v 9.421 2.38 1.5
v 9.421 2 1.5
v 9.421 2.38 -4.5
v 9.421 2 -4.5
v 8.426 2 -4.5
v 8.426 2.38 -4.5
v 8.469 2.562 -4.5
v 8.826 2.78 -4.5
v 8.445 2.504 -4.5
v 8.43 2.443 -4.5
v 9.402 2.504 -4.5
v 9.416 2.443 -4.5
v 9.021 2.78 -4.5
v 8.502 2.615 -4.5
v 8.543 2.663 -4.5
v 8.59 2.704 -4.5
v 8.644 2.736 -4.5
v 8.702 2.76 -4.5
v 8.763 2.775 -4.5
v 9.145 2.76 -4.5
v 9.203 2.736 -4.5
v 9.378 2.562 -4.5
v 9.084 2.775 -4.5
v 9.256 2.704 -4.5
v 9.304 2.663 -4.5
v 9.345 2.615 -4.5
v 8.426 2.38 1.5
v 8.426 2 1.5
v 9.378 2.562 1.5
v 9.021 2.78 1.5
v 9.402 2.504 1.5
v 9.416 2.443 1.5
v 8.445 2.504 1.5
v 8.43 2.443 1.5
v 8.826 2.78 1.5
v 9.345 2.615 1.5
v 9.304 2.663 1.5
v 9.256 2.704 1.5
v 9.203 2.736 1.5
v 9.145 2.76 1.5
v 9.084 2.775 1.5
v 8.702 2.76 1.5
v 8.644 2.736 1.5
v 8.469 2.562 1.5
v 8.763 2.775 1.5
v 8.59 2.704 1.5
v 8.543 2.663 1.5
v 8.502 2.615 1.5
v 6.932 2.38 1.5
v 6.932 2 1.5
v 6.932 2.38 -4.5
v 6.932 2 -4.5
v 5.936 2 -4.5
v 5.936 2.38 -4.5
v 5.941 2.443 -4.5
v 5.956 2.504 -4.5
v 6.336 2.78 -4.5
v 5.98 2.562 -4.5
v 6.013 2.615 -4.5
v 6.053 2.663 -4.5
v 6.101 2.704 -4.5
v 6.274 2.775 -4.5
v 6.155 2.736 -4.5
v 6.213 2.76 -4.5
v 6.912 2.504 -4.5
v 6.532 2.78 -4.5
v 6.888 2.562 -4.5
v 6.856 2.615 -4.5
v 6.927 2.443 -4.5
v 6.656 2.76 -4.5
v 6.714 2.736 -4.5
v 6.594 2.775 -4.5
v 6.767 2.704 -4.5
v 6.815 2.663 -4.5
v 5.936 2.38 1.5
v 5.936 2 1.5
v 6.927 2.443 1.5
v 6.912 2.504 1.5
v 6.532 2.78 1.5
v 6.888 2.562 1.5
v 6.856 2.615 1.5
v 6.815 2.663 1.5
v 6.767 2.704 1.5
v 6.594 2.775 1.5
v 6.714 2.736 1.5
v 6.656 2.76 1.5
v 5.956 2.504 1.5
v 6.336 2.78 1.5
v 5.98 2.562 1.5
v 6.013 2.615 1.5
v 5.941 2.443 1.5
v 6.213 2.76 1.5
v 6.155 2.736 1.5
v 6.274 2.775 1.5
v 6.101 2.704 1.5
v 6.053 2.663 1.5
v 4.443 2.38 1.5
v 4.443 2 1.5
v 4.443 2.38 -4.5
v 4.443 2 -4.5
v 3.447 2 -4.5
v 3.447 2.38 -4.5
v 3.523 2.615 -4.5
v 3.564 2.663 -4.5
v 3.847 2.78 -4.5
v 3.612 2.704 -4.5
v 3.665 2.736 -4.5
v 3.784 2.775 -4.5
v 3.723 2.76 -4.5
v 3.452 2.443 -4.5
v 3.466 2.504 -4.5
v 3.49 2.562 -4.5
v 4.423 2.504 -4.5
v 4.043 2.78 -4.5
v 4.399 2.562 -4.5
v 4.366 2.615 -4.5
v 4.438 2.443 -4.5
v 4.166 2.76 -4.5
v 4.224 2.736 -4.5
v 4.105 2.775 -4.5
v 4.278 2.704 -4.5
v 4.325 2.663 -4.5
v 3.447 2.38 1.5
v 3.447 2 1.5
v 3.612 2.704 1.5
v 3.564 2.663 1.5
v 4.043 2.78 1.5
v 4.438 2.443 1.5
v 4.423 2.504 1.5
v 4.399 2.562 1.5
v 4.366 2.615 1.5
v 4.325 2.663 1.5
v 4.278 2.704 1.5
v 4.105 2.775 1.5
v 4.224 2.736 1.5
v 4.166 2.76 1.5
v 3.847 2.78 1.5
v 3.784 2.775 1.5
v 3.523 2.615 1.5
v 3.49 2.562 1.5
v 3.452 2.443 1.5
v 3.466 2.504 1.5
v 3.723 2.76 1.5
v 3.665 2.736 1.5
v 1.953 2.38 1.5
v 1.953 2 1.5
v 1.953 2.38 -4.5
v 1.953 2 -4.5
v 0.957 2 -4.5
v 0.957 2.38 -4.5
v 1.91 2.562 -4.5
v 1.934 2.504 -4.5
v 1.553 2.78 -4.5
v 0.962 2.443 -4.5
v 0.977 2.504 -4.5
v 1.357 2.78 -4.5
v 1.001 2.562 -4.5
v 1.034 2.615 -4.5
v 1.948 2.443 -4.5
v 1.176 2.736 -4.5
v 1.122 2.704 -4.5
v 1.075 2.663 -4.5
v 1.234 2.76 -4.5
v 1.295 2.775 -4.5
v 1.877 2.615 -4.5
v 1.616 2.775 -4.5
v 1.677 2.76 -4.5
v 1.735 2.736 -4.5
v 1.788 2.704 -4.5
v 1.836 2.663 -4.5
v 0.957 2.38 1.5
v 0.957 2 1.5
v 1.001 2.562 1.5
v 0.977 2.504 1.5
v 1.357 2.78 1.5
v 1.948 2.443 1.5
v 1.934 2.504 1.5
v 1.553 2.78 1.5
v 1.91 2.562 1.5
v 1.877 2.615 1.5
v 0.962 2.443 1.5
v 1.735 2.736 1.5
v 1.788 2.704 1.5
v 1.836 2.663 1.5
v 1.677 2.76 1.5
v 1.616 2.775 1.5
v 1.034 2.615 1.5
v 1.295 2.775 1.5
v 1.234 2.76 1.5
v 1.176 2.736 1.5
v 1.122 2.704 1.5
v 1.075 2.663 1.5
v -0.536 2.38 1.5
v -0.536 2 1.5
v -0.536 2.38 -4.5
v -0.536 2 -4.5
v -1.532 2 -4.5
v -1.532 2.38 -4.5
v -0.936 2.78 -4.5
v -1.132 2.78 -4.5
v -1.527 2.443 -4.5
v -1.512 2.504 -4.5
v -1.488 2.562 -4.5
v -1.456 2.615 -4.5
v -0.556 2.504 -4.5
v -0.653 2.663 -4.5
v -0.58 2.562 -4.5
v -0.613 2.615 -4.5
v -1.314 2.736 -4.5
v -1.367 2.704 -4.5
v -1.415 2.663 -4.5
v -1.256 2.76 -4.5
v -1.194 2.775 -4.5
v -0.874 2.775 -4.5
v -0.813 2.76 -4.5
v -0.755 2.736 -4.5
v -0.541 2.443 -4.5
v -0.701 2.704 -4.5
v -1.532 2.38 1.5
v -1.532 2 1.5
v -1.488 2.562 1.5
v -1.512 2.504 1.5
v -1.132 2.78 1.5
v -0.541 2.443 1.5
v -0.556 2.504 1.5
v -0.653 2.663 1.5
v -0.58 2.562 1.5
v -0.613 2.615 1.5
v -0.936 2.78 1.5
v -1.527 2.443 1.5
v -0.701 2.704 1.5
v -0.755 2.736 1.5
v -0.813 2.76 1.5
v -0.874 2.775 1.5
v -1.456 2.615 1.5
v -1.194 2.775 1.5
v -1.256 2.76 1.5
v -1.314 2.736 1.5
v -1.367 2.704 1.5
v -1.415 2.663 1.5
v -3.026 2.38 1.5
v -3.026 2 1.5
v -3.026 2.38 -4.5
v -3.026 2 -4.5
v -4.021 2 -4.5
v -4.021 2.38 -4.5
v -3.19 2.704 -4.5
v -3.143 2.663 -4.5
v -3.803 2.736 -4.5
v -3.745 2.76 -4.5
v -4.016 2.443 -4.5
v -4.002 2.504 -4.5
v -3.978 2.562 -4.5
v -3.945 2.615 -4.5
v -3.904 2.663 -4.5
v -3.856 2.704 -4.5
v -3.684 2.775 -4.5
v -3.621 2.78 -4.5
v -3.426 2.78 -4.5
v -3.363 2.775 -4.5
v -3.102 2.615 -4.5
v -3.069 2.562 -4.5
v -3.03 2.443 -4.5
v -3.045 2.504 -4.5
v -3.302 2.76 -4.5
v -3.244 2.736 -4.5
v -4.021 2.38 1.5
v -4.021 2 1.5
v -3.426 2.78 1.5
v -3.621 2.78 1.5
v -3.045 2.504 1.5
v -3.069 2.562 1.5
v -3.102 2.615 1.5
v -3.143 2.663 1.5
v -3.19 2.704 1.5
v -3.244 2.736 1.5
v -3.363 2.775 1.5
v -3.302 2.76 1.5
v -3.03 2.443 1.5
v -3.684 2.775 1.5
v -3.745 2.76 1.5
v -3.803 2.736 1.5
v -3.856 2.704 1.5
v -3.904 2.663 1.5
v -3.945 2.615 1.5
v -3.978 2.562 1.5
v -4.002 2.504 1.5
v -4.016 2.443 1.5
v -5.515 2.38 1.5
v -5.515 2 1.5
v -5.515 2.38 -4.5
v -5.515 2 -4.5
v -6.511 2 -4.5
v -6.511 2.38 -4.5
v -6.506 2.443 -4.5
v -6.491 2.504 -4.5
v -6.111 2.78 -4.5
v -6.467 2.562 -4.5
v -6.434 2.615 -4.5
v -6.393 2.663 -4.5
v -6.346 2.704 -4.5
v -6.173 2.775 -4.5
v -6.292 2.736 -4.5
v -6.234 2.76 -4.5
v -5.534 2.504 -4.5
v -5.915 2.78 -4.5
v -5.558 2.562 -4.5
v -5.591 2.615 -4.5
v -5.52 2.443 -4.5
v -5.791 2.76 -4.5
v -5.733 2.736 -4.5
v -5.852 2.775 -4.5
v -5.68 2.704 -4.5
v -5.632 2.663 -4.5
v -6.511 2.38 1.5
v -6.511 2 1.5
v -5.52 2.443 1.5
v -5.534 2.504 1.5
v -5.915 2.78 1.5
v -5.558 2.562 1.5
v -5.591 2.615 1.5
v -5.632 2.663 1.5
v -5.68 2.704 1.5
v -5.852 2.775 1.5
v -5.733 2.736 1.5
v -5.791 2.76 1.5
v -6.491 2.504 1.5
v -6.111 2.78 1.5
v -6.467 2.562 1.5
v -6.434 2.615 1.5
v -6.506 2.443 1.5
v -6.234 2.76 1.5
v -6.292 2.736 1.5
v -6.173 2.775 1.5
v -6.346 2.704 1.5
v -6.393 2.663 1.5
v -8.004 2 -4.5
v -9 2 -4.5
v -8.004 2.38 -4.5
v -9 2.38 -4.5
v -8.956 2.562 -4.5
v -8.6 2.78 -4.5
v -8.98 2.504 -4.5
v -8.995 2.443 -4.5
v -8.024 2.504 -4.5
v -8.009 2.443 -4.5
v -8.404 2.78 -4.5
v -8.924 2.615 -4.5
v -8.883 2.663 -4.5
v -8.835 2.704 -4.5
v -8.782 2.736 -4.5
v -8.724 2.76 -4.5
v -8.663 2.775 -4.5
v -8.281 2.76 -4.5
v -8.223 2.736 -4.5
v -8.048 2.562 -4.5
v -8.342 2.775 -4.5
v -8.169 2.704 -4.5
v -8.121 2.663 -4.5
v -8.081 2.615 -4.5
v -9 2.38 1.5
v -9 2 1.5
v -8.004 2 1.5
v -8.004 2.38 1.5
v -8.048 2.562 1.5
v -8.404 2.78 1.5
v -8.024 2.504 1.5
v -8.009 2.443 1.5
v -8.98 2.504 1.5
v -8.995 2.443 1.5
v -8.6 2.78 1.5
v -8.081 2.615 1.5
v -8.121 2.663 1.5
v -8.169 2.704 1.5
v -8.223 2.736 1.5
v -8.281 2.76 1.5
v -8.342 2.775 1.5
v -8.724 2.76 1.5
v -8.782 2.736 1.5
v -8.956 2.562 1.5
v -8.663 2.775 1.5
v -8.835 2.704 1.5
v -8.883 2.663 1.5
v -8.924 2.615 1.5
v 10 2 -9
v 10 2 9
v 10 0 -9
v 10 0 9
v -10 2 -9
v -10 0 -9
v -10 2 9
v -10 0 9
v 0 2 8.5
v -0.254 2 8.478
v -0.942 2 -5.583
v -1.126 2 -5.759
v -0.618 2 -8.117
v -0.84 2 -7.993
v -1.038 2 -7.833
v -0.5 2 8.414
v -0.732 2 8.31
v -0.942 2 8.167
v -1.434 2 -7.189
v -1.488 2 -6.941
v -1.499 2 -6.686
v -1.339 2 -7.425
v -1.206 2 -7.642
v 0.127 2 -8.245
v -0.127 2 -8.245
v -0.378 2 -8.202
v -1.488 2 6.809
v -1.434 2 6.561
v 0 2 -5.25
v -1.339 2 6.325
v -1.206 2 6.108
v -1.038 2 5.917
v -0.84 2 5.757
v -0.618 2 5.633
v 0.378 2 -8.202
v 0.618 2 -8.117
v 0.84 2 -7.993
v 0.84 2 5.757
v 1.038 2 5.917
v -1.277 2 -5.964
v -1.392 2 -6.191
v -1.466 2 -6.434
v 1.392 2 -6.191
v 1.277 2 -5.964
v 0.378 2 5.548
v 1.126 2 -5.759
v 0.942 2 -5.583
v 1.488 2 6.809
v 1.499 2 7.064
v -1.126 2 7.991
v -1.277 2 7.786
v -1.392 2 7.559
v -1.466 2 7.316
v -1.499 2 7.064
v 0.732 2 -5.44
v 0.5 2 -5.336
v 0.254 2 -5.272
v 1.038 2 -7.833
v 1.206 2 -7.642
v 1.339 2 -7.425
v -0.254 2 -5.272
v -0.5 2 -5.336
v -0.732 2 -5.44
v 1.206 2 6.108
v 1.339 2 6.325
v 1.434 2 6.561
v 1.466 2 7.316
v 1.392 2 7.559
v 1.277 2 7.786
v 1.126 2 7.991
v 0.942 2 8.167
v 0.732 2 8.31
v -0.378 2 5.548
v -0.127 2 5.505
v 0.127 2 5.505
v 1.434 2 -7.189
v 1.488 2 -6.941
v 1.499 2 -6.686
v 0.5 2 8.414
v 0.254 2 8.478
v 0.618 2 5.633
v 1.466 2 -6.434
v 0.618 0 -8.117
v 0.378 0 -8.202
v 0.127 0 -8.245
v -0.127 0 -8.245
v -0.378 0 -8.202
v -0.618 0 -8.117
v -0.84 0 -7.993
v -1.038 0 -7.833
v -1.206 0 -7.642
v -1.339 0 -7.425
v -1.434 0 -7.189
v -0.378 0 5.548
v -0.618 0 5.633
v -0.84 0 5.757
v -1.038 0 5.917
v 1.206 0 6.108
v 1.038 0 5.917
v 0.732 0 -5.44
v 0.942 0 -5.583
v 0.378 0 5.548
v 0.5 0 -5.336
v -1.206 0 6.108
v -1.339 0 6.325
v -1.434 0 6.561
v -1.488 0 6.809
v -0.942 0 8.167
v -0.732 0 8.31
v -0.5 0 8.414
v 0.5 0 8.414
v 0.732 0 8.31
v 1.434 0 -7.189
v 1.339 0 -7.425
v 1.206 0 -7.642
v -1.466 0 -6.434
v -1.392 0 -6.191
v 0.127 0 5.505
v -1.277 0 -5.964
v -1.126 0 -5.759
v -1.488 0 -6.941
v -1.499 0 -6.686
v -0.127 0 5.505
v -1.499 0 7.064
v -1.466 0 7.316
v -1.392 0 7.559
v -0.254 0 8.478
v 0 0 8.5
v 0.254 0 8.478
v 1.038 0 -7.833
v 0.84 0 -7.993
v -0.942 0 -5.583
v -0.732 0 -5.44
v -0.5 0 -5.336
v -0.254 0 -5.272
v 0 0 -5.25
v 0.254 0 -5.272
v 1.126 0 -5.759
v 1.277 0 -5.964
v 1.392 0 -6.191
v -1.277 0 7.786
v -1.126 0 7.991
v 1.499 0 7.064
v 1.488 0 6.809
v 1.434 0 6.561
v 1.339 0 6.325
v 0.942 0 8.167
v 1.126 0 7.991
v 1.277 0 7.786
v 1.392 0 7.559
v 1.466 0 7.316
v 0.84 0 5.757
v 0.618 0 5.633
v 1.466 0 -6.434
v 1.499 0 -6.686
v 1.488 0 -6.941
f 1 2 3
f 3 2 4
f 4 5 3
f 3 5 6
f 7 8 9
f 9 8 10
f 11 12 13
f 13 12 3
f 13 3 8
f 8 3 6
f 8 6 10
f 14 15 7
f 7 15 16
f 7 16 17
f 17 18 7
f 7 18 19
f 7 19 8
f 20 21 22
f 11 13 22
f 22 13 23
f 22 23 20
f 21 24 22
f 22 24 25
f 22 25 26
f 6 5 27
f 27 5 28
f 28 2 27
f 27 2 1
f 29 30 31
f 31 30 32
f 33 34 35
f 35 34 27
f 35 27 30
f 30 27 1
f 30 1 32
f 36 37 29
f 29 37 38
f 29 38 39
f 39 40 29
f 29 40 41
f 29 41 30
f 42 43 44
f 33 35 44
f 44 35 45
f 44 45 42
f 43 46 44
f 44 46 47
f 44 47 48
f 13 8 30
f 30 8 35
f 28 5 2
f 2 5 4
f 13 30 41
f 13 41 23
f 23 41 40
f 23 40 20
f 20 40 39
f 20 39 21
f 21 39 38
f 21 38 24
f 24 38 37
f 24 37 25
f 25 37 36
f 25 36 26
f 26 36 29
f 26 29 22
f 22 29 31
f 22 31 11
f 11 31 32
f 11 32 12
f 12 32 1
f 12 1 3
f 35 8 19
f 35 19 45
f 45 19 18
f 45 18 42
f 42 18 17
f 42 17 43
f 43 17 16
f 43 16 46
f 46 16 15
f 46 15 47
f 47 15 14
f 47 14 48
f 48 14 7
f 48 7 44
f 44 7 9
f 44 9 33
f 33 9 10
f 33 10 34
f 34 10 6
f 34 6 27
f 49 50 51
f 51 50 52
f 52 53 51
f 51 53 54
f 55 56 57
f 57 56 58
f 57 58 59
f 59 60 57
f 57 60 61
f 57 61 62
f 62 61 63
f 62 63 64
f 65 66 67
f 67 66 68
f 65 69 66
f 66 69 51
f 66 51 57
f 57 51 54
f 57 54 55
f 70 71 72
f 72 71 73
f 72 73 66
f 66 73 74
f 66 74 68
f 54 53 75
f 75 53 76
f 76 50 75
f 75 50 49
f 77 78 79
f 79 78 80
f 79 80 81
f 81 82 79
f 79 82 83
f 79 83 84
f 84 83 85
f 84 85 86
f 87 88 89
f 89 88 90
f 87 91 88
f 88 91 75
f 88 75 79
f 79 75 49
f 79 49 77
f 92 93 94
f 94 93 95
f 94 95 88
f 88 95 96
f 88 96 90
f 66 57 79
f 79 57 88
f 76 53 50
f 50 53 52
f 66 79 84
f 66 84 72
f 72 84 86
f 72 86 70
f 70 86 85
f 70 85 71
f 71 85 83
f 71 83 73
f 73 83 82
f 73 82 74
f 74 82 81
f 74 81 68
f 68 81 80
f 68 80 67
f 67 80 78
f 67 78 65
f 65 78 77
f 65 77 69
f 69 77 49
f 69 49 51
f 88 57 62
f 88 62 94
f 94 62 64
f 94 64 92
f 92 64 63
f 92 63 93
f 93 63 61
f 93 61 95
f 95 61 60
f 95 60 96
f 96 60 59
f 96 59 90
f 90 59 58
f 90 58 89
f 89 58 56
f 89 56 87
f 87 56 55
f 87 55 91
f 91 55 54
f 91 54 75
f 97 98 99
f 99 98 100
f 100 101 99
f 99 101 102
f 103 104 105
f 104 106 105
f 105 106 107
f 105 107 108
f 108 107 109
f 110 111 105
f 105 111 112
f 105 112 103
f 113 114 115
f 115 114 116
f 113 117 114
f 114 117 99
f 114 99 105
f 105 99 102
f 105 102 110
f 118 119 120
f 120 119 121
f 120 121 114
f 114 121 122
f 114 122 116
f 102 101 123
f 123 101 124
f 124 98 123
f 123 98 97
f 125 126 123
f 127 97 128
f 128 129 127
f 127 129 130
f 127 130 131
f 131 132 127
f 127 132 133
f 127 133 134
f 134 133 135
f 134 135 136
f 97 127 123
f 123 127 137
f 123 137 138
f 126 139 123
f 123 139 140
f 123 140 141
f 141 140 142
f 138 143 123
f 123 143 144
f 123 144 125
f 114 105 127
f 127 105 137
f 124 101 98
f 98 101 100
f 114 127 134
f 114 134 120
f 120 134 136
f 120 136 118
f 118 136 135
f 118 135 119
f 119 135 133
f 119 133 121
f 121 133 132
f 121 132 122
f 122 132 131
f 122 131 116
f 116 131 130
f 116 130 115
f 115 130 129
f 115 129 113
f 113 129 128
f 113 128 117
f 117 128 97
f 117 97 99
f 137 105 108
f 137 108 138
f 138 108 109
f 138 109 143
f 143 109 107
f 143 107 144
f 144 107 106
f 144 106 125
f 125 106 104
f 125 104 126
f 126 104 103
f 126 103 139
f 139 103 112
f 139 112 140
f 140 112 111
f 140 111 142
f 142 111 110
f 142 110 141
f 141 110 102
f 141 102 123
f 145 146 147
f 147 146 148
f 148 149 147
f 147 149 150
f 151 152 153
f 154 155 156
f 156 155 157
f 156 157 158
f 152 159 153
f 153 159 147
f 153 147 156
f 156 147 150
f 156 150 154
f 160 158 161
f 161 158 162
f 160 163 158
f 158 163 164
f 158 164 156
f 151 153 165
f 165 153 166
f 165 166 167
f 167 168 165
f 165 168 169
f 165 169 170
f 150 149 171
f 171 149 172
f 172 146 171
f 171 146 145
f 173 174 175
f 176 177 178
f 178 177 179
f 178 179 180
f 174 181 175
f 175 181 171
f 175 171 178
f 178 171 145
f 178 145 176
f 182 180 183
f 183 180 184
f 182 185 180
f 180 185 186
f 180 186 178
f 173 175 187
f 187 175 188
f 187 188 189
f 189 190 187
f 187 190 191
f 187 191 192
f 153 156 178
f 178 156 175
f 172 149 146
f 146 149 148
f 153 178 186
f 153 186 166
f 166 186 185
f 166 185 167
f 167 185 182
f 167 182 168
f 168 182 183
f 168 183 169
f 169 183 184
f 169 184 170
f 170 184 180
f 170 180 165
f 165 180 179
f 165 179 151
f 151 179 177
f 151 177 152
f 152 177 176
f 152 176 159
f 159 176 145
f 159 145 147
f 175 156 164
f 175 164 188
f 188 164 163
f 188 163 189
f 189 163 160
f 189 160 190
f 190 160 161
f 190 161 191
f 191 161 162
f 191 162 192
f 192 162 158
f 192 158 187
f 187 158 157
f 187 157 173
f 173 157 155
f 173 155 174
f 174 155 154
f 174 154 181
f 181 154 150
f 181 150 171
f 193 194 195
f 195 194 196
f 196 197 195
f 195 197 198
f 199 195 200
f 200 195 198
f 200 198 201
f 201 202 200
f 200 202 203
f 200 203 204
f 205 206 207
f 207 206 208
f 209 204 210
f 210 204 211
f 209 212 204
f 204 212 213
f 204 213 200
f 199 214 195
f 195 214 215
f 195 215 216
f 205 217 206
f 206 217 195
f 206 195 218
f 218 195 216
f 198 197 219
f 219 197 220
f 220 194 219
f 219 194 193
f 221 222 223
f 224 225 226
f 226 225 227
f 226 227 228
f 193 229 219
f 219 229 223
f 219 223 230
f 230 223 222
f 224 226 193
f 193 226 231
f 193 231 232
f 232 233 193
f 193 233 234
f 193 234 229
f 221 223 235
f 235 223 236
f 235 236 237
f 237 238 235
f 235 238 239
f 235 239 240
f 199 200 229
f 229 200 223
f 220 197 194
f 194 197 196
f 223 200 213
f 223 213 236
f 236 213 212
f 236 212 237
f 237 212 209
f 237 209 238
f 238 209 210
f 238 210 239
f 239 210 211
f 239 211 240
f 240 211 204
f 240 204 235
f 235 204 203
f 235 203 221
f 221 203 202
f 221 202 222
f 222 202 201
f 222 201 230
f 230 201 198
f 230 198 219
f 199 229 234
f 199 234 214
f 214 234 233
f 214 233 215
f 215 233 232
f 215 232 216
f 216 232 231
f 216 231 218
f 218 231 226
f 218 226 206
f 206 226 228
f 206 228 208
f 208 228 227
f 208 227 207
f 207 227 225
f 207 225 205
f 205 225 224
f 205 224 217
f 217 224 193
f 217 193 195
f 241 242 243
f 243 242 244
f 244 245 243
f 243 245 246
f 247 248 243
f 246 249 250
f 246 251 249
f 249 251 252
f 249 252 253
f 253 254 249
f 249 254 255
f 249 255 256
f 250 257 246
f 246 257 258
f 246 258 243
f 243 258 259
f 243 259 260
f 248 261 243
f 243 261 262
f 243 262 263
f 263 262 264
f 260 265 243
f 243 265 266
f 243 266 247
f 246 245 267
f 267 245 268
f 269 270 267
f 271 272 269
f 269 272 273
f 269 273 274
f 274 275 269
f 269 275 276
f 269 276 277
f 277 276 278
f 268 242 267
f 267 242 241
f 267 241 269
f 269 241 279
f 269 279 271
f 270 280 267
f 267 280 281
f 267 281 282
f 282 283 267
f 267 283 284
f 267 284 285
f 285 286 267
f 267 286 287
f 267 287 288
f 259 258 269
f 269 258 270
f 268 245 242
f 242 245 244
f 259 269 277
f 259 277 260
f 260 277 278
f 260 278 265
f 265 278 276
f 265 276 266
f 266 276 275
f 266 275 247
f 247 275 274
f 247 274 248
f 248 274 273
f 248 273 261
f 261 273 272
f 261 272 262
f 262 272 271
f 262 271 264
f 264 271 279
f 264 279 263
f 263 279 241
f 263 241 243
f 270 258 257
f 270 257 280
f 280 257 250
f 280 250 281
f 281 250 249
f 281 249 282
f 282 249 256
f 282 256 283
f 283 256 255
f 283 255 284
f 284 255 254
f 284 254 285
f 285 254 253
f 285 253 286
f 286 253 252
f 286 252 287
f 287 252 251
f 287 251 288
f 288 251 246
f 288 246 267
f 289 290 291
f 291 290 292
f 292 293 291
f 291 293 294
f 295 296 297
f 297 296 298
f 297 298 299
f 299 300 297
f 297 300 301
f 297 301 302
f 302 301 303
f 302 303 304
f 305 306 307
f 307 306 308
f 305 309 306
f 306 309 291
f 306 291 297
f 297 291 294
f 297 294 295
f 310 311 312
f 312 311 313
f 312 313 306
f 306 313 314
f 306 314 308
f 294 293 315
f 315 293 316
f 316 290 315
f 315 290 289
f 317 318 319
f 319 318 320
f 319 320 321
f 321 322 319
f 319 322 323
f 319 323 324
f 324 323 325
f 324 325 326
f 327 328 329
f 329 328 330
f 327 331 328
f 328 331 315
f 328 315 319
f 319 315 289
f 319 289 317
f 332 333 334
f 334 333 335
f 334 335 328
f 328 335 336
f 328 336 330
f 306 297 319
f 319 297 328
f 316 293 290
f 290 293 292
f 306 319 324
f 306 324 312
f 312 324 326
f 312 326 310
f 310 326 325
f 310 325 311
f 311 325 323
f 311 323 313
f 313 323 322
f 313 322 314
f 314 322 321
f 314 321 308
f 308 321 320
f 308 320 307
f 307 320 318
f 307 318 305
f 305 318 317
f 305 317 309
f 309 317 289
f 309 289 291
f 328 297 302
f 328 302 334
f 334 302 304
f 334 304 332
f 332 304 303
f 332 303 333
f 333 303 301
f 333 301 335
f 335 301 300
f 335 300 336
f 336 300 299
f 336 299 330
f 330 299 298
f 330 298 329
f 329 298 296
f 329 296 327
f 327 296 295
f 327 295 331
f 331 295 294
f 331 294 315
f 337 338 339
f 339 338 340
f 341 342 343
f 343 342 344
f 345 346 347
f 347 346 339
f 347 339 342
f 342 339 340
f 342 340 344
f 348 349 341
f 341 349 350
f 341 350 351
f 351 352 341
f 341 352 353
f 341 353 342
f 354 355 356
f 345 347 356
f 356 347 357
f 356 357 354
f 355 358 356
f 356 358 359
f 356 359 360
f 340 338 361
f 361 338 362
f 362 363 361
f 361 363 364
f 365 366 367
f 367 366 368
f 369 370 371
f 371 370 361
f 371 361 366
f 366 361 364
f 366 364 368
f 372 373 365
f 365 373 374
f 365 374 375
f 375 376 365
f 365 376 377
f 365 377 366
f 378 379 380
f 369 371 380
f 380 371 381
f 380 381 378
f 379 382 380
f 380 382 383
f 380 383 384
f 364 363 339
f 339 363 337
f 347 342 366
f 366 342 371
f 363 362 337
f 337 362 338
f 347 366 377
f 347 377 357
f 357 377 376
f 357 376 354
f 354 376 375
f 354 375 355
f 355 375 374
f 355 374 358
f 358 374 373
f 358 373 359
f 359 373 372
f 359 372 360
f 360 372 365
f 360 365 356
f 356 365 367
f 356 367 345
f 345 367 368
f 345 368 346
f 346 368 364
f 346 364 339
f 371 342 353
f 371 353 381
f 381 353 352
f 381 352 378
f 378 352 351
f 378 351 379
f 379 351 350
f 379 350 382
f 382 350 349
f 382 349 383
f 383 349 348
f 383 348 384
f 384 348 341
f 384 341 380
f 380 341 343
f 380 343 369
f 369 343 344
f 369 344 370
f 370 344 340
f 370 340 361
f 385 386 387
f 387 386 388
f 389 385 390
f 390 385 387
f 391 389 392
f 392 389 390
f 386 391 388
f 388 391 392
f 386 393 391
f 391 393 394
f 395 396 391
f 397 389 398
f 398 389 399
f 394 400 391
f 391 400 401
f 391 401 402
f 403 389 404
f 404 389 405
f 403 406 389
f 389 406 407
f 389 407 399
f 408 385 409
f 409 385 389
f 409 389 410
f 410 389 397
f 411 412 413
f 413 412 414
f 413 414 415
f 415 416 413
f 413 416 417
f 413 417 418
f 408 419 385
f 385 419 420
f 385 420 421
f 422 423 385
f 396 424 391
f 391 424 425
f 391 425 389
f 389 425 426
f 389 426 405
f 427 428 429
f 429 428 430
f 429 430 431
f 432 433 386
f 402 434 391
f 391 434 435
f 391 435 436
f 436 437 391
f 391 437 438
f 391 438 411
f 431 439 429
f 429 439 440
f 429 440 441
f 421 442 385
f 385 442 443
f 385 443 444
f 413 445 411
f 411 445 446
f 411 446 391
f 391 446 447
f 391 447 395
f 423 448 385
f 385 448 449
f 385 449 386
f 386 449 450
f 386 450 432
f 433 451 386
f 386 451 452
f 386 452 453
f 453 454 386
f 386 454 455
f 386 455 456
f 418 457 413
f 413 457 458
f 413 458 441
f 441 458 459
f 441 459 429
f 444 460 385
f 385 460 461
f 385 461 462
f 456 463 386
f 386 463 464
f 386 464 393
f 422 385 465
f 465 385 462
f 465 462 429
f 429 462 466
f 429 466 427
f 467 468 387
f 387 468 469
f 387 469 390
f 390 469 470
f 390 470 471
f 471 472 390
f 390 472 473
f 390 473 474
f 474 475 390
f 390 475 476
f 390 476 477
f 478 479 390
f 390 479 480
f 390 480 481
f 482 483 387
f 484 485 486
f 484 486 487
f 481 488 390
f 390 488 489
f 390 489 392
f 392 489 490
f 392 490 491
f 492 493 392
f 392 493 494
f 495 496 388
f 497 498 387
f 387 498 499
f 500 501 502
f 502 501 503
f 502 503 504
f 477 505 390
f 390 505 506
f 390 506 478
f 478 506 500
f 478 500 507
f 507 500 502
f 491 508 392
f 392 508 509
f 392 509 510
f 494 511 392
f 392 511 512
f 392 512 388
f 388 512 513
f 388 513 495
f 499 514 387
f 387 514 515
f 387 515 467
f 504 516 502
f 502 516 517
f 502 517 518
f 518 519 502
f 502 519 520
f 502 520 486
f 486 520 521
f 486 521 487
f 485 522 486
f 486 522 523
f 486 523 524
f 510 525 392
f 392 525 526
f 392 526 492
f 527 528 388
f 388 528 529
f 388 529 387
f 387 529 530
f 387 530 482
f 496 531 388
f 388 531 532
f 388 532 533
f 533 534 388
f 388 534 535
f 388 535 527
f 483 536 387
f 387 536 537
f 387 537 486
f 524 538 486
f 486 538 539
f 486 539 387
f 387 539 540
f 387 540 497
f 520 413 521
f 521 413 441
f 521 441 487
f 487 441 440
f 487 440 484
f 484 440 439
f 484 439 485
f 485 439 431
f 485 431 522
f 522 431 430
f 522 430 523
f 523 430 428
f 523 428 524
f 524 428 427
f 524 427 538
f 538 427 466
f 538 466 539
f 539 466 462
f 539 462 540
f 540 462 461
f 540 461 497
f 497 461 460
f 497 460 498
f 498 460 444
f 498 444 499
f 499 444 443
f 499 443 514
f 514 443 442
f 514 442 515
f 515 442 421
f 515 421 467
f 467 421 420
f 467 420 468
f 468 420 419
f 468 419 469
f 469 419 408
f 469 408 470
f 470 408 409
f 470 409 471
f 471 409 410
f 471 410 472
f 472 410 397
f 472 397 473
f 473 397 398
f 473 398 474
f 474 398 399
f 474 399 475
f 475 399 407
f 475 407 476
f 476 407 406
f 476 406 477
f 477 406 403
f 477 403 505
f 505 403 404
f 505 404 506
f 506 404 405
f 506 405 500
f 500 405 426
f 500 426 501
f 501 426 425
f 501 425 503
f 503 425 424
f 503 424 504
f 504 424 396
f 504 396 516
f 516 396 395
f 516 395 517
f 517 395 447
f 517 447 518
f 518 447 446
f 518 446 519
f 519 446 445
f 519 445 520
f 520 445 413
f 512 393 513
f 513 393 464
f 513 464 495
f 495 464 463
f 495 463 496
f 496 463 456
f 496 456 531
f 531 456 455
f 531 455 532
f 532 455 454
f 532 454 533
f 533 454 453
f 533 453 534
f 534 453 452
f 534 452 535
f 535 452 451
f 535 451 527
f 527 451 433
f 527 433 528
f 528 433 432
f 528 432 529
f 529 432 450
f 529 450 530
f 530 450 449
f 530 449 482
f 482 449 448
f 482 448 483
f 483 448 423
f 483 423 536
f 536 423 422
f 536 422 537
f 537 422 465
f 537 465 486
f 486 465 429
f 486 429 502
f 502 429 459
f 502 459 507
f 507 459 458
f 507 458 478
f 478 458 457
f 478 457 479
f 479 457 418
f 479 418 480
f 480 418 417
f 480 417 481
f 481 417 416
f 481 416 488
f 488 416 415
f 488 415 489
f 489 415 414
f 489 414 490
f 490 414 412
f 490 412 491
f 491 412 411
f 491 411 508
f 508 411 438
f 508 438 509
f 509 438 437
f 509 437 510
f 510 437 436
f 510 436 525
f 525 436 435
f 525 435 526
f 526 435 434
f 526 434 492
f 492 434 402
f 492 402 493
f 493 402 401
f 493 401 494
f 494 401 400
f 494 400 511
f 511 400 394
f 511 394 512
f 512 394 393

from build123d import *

# Parameters (mm, degrees)
SKETCH_1_W          = 20
SKETCH_1_H          = 18
EXTRUDE_1_DEPTH     = 2
SKETCH_6_W          = 0.995744681
SKETCH_6_H          = 6
EXTRUDE_4_DEPTH     = 0.78
EXTRUDE_4_2_DEPTH   = 0.78
SKETCH_6_W_2        = 0.99574468
EXTRUDE_4_3_DEPTH   = 0.78
EXTRUDE_4_4_DEPTH   = 0.78
EXTRUDE_4_5_DEPTH   = 0.78
EXTRUDE_4_6_DEPTH   = 0.78
EXTRUDE_4_7_DEPTH   = 0.78
EXTRUDE_4_8_DEPTH   = 0.78
FILLET_11_R         = 0.4
FILLET_12_R         = 0.4
FILLET_13_R         = 0.4
FILLET_14_R         = 0.4
FILLET_15_R         = 0.4
FILLET_16_R         = 0.4
FILLET_17_R         = 0.4
FILLET_18_R         = 0.4
FILLET_19_R         = 0.4
SKETCH_9_R          = 1.5
CUT_EXTRUDE_2_DEPTH = 10


with BuildPart() as part:
    # 草图1 → 凸台-拉伸1 (new body)
    with BuildSketch(Plane(origin=(0, 0, 0), x_dir=(1, 0, 0), z_dir=(0, 1, 0))):
        Rectangle(SKETCH_1_W, SKETCH_1_H)
    extrude(amount=EXTRUDE_1_DEPTH)

    # 草图9 → 切除-拉伸2 (cut)
    with BuildSketch(Plane(origin=(0, 2, 0), x_dir=(1, 0, 0), z_dir=(0, 1, 0))):
        with Locations(Location((0, -7, 0), (0, 0, 270))):
            Circle(SKETCH_9_R)
        with Locations(Location((0, 6.75, 0), (0, 0, 270))):
            Circle(SKETCH_9_R)
    extrude(amount=-CUT_EXTRUDE_2_DEPTH, mode=Mode.SUBTRACT)


with BuildPart() as body_2:
    # 草图6 → 凸台-拉伸4 (new body)
    with BuildSketch(Plane(origin=(0, 2, 0), x_dir=(1, 0, 0), z_dir=(0, 1, 0))):
        with Locations((8.923404255, 1.5)):
            Rectangle(SKETCH_6_W, SKETCH_6_H)
    extrude(amount=EXTRUDE_4_DEPTH)

    # 圆角19
    fillet_19_edges = [body_2.edges().sort_by_distance(p)[0] for p in [
        (8.425531915, 2.78, -1.5),
        (9.421276596, 2.78, -1.5),
    ]]
    fillet(fillet_19_edges, radius=FILLET_19_R)


with BuildPart() as body_3:
    # 草图6 → Extrude 4 2 (new body)
    with BuildSketch(Plane(origin=(0, 2, 0), x_dir=(1, 0, 0), z_dir=(0, 1, 0))):
        with Locations((6.434042554, 1.5)):
            Rectangle(SKETCH_6_W, SKETCH_6_H)
    extrude(amount=EXTRUDE_4_2_DEPTH)

    # 圆角18
    fillet_18_edges = [body_3.edges().sort_by_distance(p)[0] for p in [
        (5.936170213, 2.78, -1.5),
        (6.931914894, 2.78, -1.5),
    ]]
    fillet(fillet_18_edges, radius=FILLET_18_R)


with BuildPart() as body_4:
    # 草图6 → Extrude 4 3 (new body)
    with BuildSketch(Plane(origin=(0, 2, 0), x_dir=(1, 0, 0), z_dir=(0, 1, 0))):
        with Locations((3.944680851, 1.5)):
            Rectangle(SKETCH_6_W_2, SKETCH_6_H)
    extrude(amount=EXTRUDE_4_3_DEPTH)

    # 圆角17
    fillet_17_edges = [body_4.edges().sort_by_distance(p)[0] for p in [
        (3.446808511, 2.78, -1.5),
        (4.442553191, 2.78, -1.5),
    ]]
    fillet(fillet_17_edges, radius=FILLET_17_R)


with BuildPart() as body_5:
    # 草图6 → Extrude 4 4 (new body)
    with BuildSketch(Plane(origin=(0, 2, 0), x_dir=(1, 0, 0), z_dir=(0, 1, 0))):
        with Locations((1.455319149, 1.5)):
            Rectangle(SKETCH_6_W_2, SKETCH_6_H)
    extrude(amount=EXTRUDE_4_4_DEPTH)

    # 圆角16
    fillet_16_edges = [body_5.edges().sort_by_distance(p)[0] for p in [
        (0.957446809, 2.78, -1.5),
        (1.953191489, 2.78, -1.5),
    ]]
    fillet(fillet_16_edges, radius=FILLET_16_R)


with BuildPart() as body_6:
    # 草图6 → Extrude 4 5 (new body)
    with BuildSketch(Plane(origin=(0, 2, 0), x_dir=(1, 0, 0), z_dir=(0, 1, 0))):
        with Locations((-1.034042553, 1.5)):
            Rectangle(SKETCH_6_W, SKETCH_6_H)
    extrude(amount=EXTRUDE_4_5_DEPTH)

    # 圆角14
    fillet_14_edges = [body_6.edges().sort_by_distance(p)[0] for p in [
        (-1.531914894, 2.78, -1.5),
    ]]
    fillet(fillet_14_edges, radius=FILLET_14_R)

    # 圆角15
    fillet_15_edges = [body_6.edges().sort_by_distance(p)[0] for p in [
        (-0.536170213, 2.78, -1.5),
    ]]
    fillet(fillet_15_edges, radius=FILLET_15_R)


with BuildPart() as body_7:
    # 草图6 → Extrude 4 6 (new body)
    with BuildSketch(Plane(origin=(0, 2, 0), x_dir=(1, 0, 0), z_dir=(0, 1, 0))):
        with Locations((-3.523404256, 1.5)):
            Rectangle(SKETCH_6_W, SKETCH_6_H)
    extrude(amount=EXTRUDE_4_6_DEPTH)

    # 圆角13
    fillet_13_edges = [body_7.edges().sort_by_distance(p)[0] for p in [
        (-4.021276596, 2.78, -1.5),
        (-3.025531915, 2.78, -1.5),
    ]]
    fillet(fillet_13_edges, radius=FILLET_13_R)


with BuildPart() as body_8:
    # 草图6 → Extrude 4 7 (new body)
    with BuildSketch(Plane(origin=(0, 2, 0), x_dir=(1, 0, 0), z_dir=(0, 1, 0))):
        with Locations((-6.012765958, 1.5)):
            Rectangle(SKETCH_6_W, SKETCH_6_H)
    extrude(amount=EXTRUDE_4_7_DEPTH)

    # 圆角12
    fillet_12_edges = [body_8.edges().sort_by_distance(p)[0] for p in [
        (-6.510638298, 2.78, -1.5),
        (-5.514893617, 2.78, -1.5),
    ]]
    fillet(fillet_12_edges, radius=FILLET_12_R)


with BuildPart() as body_9:
    # 草图6 → Extrude 4 8 (new body)
    with BuildSketch(Plane(origin=(0, 2, 0), x_dir=(1, 0, 0), z_dir=(0, 1, 0))):
        with Locations((-8.50212766, 1.5)):
            Rectangle(SKETCH_6_W, SKETCH_6_H)
    extrude(amount=EXTRUDE_4_8_DEPTH)

    # 圆角11
    fillet_11_edges = [body_9.edges().sort_by_distance(p)[0] for p in [
        (-8.004255319, 2.78, -1.5),
        (-9, 2.78, -1.5),
    ]]
    fillet(fillet_11_edges, radius=FILLET_11_R)


solid = Compound([part.part, body_2.part, body_3.part, body_4.part, body_5.part, body_6.part, body_7.part, body_8.part, body_9.part])
